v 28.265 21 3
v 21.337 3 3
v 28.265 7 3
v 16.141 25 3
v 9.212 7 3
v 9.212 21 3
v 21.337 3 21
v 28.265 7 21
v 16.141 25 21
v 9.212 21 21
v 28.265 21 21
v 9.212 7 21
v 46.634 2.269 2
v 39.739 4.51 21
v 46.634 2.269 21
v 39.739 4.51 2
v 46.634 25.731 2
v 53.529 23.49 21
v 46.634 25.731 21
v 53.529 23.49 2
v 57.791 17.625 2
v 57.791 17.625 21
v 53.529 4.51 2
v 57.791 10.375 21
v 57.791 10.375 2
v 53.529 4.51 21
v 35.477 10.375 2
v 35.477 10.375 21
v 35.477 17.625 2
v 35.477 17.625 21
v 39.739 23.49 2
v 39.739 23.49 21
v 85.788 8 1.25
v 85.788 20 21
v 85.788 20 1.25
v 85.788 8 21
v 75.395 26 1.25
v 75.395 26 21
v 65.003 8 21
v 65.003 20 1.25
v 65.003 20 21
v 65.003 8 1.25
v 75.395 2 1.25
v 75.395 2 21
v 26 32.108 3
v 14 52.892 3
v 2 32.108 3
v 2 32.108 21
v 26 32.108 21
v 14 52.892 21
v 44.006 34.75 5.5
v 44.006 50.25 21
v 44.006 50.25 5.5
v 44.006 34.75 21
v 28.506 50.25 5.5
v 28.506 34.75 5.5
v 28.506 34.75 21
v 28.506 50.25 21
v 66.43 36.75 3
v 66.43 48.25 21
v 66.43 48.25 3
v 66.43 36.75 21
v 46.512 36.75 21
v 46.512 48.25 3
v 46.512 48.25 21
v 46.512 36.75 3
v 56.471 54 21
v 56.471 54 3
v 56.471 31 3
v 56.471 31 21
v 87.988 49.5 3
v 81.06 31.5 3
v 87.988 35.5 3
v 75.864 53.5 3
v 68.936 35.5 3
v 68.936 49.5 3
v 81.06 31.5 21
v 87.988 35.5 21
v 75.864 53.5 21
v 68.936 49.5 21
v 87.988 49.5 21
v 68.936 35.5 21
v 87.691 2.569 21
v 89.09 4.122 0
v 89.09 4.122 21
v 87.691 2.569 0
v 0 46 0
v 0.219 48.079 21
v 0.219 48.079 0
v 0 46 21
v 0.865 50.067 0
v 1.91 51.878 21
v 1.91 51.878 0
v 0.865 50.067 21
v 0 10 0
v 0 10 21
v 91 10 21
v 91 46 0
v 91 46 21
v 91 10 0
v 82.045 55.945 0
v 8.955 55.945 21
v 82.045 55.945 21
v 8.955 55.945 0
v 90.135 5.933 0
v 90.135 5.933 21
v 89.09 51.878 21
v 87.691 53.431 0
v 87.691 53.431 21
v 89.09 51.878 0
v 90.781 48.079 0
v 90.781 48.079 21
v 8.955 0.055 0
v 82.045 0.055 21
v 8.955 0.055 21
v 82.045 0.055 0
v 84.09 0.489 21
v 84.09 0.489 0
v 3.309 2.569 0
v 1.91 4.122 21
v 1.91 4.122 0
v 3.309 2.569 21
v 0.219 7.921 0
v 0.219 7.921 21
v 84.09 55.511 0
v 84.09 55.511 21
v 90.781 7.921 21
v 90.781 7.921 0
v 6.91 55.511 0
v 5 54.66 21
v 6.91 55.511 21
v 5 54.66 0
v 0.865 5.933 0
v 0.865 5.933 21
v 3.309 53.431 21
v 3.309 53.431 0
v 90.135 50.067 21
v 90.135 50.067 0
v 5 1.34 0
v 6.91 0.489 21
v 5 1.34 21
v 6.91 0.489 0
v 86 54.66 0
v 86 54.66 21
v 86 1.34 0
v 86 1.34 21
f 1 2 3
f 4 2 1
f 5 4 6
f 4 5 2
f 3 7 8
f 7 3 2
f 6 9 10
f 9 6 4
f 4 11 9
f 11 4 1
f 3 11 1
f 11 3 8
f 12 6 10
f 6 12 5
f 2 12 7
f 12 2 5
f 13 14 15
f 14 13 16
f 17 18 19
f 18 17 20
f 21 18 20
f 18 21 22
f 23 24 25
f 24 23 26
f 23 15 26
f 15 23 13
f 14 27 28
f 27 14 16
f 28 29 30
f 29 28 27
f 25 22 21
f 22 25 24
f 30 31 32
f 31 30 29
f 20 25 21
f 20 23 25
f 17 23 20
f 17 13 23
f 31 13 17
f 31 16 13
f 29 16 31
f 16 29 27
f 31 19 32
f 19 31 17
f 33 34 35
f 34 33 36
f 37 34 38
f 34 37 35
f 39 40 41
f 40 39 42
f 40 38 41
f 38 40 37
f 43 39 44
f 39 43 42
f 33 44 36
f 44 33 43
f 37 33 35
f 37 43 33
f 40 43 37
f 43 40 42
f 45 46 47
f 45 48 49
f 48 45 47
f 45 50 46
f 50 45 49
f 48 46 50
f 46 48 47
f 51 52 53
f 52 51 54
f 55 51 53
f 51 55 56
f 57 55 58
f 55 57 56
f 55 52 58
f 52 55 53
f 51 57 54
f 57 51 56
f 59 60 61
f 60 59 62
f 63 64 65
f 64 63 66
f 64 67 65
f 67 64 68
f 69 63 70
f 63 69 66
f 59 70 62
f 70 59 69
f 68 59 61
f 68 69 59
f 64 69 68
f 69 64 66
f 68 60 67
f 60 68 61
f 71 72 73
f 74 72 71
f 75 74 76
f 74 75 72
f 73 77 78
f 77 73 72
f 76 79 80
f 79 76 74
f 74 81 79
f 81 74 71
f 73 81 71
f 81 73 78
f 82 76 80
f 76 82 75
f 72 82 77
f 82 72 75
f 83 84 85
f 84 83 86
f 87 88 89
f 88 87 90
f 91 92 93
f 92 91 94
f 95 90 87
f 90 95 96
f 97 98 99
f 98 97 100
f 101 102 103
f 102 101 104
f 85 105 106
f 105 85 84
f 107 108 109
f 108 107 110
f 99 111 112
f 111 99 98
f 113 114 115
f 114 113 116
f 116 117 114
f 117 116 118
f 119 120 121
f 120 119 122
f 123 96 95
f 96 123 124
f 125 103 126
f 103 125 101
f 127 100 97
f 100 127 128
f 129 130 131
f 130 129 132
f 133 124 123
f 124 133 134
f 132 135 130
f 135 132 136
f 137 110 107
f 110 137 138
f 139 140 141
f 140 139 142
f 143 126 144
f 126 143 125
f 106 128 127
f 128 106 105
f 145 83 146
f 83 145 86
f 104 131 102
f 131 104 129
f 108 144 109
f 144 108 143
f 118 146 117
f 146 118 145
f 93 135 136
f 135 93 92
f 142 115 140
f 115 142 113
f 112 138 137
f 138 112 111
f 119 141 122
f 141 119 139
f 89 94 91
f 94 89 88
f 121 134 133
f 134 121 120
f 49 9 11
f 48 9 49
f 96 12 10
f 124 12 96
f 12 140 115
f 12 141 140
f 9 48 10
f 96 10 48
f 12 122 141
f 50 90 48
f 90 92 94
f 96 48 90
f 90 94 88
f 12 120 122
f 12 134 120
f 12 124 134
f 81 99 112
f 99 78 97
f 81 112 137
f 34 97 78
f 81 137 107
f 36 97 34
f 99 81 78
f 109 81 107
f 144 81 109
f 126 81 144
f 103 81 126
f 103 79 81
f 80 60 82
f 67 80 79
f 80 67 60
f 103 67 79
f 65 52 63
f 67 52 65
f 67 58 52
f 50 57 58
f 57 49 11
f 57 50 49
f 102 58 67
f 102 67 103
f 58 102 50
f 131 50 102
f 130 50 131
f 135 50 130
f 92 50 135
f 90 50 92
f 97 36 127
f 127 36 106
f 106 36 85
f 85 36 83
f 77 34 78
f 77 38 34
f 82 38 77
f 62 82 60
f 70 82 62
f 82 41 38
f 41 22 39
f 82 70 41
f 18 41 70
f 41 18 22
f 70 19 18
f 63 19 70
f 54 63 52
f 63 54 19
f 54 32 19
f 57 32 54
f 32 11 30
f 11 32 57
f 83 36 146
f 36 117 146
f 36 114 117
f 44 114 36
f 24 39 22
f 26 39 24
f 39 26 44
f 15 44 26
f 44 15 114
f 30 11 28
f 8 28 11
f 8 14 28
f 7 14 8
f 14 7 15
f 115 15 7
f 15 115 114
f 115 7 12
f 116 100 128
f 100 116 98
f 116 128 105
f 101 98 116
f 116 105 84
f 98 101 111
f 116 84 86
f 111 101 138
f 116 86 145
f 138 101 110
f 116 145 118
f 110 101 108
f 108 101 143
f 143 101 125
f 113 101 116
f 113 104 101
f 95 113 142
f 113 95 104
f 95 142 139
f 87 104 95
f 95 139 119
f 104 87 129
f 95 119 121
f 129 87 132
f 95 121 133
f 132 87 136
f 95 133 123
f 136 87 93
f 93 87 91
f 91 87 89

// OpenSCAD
// file: ../lib/roundedcube.scad
// Source: https://danielupshaw.com/openscad-rounded-corners/
// Higher definition curves
$fs = 0.01;

module roundedcube(size = [1, 1, 1], center = false, radius = 0.5, apply_to = "all") {
	// If single value, convert to [x, y, z] vector
	size = (size[0] == undef) ? [size, size, size] : size;

	translate_min = radius;
	translate_xmax = size[0] - radius;
	translate_ymax = size[1] - radius;
	translate_zmax = size[2] - radius;

	diameter = radius * 2;

	module build_point(type = "sphere", rotate = [0, 0, 0]) {
		if (type == "sphere") {
			sphere(r = radius);
		} else if (type == "cylinder") {
			rotate(a = rotate)
			cylinder(h = diameter, r = radius, center = true);
		}
	}

	obj_translate = (center == false) ?
		[0, 0, 0] : [
			-(size[0] / 2),
			-(size[1] / 2),
			-(size[2] / 2)
		];

	translate(v = obj_translate) {
		hull() {
			for (translate_x = [translate_min, translate_xmax]) {
				x_at = (translate_x == translate_min) ? "min" : "max";
				for (translate_y = [translate_min, translate_ymax]) {
					y_at = (translate_y == translate_min) ? "min" : "max";
					for (translate_z = [translate_min, translate_zmax]) {
						z_at = (translate_z == translate_min) ? "min" : "max";

						translate(v = [translate_x, translate_y, translate_z])
						if (
							(apply_to == "all") ||
							(apply_to == "xmin" && x_at == "min") || (apply_to == "xmax" && x_at == "max") ||
							(apply_to == "ymin" && y_at == "min") || (apply_to == "ymax" && y_at == "max") ||
							(apply_to == "zmin" && z_at == "min") || (apply_to == "zmax" && z_at == "max")
						) {
							build_point("sphere");
						} else {
							rotate = 
								(apply_to == "xmin" || apply_to == "xmax" || apply_to == "x") ? [0, 90, 0] : (
								(apply_to == "ymin" || apply_to == "ymax" || apply_to == "y") ? [90, 90, 0] :
								[0, 0, 0]
							);
							build_point("cylinder", rotate);
						}
					}
				}
			}
		}
	}
}
// file: base.scad
use <../lib/roundedcube.scad>

CORNER_RADIUS = 10;
WIDTH = 91;
DEPTH = 56;
HEIGHT = 21;

function boxCorner() = CORNER_RADIUS;
function boxWidth() = WIDTH;
function boxDepth() = DEPTH;
function boxHeight() = HEIGHT;

module base_insert() {
    roundedcube(
        [boxWidth(), boxDepth(), boxHeight()],
        radius = boxCorner(),
        apply_to = "z"
    );
}

base_insert();
// main file
use <base.scad>

D4_SIDE = 24;
D4_HEIGHT = 18;
D6_SIDE = 15.5;
D8_SIDE = 11.5;
D8_HEIGHT = 18;
D10_SHORT_SIDE = 8;
D10_LONG_SIDE = 14;
D10_HEIGHT = 18;
D12_SIDE = 7.25;
D12_HEIGHT = 19;
D20_SIDE = 12;
D20_HEIGHT = 19.75;

RENDER_HELPER = 1;

WALL_OFFSET = 2;

d4_depth = D4_SIDE * sqrt(3) / 2;

d8_width = D8_SIDE * sqrt(3);
d8_depth = D8_SIDE * 2;

d10_width = D10_LONG_SIDE * sin(30) * 2;
d10_depth = D10_SHORT_SIDE * sin(30) * 2 + D10_SHORT_SIDE;
d10_slot_width = D10_SHORT_SIDE * cos(30) + D10_LONG_SIDE * cos(30);
d10_slot_depth = D10_SHORT_SIDE * sin(30) * 2 + D10_LONG_SIDE;

d12_depth = (D12_SIDE / (2 * sin(18))) * 2;
d12_width = d12_depth * cos(18);

d20_width = D20_SIDE * sqrt(3);
d20_depth = D20_SIDE * 2;

function sum(v) = [for (p = v) 1] * v;
function partial(list, start, end) = [for (i = [start:end]) list[i]];

top_row_sides = [
    WALL_OFFSET,
    D4_SIDE,
    D6_SIDE,
    d8_width,
    d10_slot_width,
    WALL_OFFSET
];

top_row_depths = [
    d4_depth,
    D6_SIDE,
    d8_depth,
    d10_slot_depth
];

bottom_row_sides = [
    WALL_OFFSET,
    d10_slot_width,
    d12_width,
    d20_width,
    WALL_OFFSET
];

bottom_row_depths = [
    d10_slot_depth,
    d12_depth,
    d20_depth
];

top_row_width = sum(top_row_sides) - WALL_OFFSET * 2;
top_row_offset = (boxWidth() - top_row_width) / (len(top_row_sides) - 1);

bottom_row_width = sum(bottom_row_sides) - WALL_OFFSET * 2;
bottom_row_offset = (boxWidth() - bottom_row_width) / (len(bottom_row_sides) - 1);

function z_offset(h) = boxHeight() - h;
function row_one_y(d) = boxDepth() - WALL_OFFSET - d - (max(top_row_depths) - d) / 2;
function row_one_x(i) = sum(partial(top_row_sides, 0, i - 1)) + top_row_offset * (i - 1);
function row_two_y(d) = WALL_OFFSET + (max(bottom_row_depths) - d) / 2;
function row_two_x(i) = sum(partial(bottom_row_sides, 0, i - 1)) + bottom_row_offset * i;

module d4() {    
    offset_x = row_one_x(1);
    offset_y = row_one_y(d4_depth);
    offset_z = z_offset(D4_HEIGHT);
    
    translate([offset_x, offset_y, offset_z])
    linear_extrude(D4_HEIGHT + RENDER_HELPER)
    polygon([
        [0, 0],
        [D4_SIDE, 0],
        [D4_SIDE / 2, d4_depth]
    ]);
}

module d6() {
    offset_x = row_one_x(2);
    offset_y = row_one_y(D6_SIDE);
    offset_z = z_offset(D6_SIDE);
    
    translate([offset_x, offset_y, offset_z])
    cube([D6_SIDE, D6_SIDE, D6_SIDE + RENDER_HELPER]);
}

module d8() {
    offset_x = row_one_x(3);
    offset_y = row_one_y(D8_SIDE * 2);
    offset_z = z_offset(D8_HEIGHT);
    
    translate([offset_x, offset_y, offset_z])
    translate([d8_width / 2, D8_SIDE, 0])
    rotate([0, 0, 90])
    cylinder(r = D8_SIDE, h = D8_HEIGHT + RENDER_HELPER, $fn = 6);
}

module d10_base() {
    // tri_a == height of short triangle
    // tri_b == base of short triangle
    tri_a = D10_SHORT_SIDE * sin(30);
    tri_b = D10_SHORT_SIDE * cos(30);
    half_side = D10_SHORT_SIDE / 2;
    half_long_side = D10_LONG_SIDE / 2;

    linear_extrude(D10_HEIGHT + RENDER_HELPER)
    polygon([
        [0, D10_LONG_SIDE + tri_a],
        [tri_b, D10_LONG_SIDE + tri_a + tri_a],
        [d10_slot_width, D10_LONG_SIDE + tri_a],
        [d10_slot_width, tri_a],
        [d10_slot_width - tri_b, 0],
        [0, tri_a]
    ]);
}

module d10() {
    offset_x = row_one_x(4);
    offset_y = row_one_y(d10_slot_depth);
    offset_z = z_offset(D10_HEIGHT);
    
    translate([offset_x, offset_y, offset_z])
    d10_base();
}

module top_row() {
    union() {
        d4();
        d6();
        d8();
        d10();
    }
}

module d100() {
    offset_x = row_two_x(1);
    offset_y = row_two_y(d10_slot_depth);
    offset_z = z_offset(D10_HEIGHT);
    
    translate([offset_x, offset_y, offset_z])
    d10_base();
}

module d12() {
    offset_x = row_two_x(2);
    offset_y = row_two_y(d12_depth);
    offset_z = z_offset(D12_HEIGHT);
    
    translate([offset_x, offset_y, offset_z])
    translate([d12_width / 2, d12_depth / 2, 0])
    rotate([0, 0, 18])
    cylinder(r = d12_depth / 2, h = D12_HEIGHT + RENDER_HELPER, $fn = 10);
}

module d20() {
    offset_x = row_two_x(3);
    offset_y = row_two_y(d20_depth);
    offset_z = z_offset(D20_HEIGHT);
    
    translate([offset_x, offset_y, offset_z])
    translate([d20_width / 2, D20_SIDE, 0])
    rotate([0, 0, 90])
    cylinder(r = D20_SIDE, h = D20_HEIGHT + RENDER_HELPER, $fn = 6);
}

module bottom_row() {
    union() {
        d100();
        d12();
        d20();
    }
}

module insert() {
    difference() {
        base_insert();
        top_row();
        bottom_row();
    }
}

insert();
